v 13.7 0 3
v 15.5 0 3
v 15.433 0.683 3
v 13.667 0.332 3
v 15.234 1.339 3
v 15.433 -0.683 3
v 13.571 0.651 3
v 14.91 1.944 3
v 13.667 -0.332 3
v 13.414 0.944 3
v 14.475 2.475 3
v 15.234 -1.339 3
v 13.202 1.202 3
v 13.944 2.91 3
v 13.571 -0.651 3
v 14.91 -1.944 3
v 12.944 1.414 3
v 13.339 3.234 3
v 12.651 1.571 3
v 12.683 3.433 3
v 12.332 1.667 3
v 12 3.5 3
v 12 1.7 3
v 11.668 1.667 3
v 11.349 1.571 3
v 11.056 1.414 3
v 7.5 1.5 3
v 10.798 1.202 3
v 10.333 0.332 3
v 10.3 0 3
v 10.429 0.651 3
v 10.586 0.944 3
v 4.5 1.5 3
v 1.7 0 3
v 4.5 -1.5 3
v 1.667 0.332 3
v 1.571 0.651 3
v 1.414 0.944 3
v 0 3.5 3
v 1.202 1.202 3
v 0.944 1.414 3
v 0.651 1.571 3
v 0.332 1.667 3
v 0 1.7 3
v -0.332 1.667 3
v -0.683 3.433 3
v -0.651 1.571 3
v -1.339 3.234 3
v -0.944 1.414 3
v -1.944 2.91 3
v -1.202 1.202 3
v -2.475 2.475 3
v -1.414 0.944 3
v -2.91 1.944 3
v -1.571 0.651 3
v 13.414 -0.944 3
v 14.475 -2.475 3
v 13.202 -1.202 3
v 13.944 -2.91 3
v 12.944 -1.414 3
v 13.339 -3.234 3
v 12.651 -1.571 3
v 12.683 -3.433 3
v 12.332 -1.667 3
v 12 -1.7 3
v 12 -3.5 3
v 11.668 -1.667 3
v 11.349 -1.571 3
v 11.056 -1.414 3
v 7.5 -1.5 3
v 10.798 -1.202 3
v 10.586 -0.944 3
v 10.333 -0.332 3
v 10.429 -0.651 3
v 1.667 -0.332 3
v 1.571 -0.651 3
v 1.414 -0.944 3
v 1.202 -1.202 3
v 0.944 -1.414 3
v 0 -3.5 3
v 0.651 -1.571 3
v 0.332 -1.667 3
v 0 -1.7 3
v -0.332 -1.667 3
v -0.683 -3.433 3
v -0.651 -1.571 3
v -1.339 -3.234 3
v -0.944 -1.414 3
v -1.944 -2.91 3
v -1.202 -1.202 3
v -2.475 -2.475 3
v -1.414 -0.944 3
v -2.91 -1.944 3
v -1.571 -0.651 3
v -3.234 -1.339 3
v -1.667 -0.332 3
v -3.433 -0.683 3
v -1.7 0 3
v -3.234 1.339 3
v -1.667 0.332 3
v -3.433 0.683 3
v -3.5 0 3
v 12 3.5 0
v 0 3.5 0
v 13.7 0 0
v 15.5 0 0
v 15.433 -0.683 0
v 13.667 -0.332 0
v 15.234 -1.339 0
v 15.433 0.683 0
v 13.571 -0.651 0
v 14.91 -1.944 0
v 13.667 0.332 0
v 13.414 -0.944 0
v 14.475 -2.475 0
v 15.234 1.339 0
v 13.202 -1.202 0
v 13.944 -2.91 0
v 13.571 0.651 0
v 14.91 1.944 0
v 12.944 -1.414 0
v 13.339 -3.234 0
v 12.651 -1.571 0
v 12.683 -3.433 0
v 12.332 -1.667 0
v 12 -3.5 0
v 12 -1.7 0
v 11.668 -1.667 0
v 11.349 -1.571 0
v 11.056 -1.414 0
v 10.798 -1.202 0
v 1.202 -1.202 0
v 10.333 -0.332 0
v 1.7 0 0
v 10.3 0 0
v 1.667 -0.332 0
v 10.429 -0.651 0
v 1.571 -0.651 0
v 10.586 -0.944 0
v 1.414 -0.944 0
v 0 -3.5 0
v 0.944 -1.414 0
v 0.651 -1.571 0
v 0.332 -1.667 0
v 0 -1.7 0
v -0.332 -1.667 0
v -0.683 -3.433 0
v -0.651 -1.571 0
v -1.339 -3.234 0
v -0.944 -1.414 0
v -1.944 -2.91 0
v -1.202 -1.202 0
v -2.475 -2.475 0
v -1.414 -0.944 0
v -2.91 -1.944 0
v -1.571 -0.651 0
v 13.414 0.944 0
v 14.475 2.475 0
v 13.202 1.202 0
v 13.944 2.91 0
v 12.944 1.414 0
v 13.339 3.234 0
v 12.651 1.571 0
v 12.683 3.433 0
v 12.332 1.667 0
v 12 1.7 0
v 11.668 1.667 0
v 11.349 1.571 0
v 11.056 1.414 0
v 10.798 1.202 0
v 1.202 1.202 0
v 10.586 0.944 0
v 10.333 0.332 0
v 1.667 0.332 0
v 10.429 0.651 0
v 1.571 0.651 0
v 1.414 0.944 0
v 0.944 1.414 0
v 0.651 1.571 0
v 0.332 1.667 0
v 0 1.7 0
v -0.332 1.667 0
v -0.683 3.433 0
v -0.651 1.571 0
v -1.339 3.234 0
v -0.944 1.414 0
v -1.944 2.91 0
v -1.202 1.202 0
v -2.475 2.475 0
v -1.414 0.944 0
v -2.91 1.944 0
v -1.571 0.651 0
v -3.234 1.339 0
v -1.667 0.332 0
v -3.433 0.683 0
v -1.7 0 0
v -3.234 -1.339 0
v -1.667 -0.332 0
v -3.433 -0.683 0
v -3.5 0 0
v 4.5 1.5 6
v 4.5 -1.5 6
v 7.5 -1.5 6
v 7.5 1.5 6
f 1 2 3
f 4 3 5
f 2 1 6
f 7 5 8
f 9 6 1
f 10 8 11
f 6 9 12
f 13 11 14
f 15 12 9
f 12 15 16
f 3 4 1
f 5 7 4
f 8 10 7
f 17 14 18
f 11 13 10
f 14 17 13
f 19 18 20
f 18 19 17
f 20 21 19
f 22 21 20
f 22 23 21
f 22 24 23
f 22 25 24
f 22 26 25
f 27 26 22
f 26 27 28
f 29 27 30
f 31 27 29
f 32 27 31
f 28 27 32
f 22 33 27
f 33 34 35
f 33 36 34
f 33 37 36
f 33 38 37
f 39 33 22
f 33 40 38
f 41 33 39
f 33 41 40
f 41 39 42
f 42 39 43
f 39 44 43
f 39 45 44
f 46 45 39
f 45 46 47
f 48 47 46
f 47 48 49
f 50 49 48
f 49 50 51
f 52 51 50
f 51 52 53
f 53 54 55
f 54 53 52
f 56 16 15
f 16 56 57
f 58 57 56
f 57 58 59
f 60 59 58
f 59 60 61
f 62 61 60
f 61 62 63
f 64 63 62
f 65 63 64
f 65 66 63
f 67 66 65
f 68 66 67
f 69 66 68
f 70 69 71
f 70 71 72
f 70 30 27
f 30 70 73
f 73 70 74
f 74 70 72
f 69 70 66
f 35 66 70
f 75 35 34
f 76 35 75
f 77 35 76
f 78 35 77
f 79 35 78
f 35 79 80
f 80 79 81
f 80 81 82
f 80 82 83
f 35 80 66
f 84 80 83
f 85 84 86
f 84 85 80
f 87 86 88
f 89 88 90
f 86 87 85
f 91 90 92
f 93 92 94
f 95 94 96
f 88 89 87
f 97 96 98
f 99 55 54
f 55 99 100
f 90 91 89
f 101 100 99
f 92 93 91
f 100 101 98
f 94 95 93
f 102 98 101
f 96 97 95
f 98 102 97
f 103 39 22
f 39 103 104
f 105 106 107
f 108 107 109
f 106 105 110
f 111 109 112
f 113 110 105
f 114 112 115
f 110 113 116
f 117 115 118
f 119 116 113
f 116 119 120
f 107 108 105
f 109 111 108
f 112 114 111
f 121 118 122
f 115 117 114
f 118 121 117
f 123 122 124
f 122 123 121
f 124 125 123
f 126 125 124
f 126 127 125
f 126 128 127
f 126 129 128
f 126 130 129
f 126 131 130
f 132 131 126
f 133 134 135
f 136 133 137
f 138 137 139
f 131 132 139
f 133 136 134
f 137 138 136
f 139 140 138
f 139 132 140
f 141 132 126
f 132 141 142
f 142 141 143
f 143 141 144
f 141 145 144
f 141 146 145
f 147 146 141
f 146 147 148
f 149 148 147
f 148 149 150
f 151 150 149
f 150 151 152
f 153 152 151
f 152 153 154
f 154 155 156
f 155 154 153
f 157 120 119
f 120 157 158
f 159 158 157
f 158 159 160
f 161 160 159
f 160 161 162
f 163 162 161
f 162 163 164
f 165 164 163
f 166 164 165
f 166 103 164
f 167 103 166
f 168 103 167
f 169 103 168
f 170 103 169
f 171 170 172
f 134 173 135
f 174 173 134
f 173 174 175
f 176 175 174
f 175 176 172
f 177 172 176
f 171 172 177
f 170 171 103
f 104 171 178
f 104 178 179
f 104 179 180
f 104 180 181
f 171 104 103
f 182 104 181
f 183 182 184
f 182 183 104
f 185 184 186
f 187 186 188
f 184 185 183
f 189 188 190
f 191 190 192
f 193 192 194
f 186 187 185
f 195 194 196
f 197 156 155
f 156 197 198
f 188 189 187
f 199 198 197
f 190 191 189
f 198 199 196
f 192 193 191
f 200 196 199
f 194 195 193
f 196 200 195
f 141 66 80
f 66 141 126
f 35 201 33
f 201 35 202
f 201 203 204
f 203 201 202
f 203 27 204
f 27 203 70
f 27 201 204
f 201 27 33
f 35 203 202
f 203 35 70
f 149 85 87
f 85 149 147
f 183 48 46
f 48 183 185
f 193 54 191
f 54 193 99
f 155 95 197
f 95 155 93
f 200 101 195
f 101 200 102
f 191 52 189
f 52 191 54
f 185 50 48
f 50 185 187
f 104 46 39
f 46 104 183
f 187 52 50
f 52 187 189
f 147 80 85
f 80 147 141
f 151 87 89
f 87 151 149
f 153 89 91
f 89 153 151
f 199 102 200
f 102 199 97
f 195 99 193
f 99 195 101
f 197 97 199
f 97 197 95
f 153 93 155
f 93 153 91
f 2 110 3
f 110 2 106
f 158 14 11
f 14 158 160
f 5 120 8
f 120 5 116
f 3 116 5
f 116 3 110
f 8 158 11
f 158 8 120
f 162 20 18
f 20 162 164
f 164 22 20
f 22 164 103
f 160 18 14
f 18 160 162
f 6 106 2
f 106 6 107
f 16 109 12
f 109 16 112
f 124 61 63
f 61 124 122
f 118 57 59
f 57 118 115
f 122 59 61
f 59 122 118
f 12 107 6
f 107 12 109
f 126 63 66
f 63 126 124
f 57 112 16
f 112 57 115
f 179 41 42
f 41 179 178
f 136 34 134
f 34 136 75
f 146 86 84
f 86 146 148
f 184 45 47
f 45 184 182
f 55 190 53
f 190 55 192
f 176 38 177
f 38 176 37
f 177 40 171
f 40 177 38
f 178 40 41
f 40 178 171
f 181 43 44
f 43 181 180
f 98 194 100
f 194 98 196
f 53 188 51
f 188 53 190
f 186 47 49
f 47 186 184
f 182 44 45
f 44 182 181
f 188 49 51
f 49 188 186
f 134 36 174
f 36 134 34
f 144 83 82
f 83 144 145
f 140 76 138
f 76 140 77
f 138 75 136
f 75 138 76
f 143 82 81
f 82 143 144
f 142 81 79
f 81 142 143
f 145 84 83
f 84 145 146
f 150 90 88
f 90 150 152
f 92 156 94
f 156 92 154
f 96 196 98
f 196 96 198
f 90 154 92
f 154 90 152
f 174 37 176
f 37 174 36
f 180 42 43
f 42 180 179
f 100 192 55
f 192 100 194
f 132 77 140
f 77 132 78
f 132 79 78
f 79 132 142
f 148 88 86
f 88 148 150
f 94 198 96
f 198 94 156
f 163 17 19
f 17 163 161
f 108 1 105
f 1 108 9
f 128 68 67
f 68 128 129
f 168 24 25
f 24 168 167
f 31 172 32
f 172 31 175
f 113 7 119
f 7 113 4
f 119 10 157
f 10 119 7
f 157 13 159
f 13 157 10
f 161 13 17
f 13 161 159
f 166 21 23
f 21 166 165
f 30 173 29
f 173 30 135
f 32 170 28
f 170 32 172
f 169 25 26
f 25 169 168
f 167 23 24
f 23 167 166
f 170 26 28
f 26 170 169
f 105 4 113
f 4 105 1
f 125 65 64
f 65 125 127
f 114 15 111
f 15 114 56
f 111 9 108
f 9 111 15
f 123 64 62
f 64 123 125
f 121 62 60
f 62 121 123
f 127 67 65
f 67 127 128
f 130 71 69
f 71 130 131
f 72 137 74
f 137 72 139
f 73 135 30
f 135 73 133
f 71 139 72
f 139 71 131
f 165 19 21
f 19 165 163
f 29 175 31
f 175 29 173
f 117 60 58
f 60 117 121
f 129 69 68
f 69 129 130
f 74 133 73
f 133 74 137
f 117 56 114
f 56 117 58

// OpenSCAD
//-- arm_very_short_1a.scad by AndrewBCN - May 2015
//-- remix of thing #154834
//-- replaces Brazo.stl with slightly stronger part
//-- and with source file.
//-- GPL V3

arm_th=3;
arm_len=12;
arm_wi=7;
$fn=32;

//-- very, very short arm
//-- !

difference() {
  // arm
  union() {
    translate([arm_len/2,0,arm_th/2]) cube([arm_len,arm_wi,arm_th], center=true);
    translate([arm_len/2,0,1.5*arm_th]) cube([arm_len-9,arm_th,arm_th], center=true);
    translate([0,0,arm_th/2]) cylinder(r=arm_wi/2, h=arm_th, center=true);
    translate([arm_len,0,arm_th/2]) cylinder(r=arm_wi/2, h=arm_th, center=true);
  }
  // holes
  cylinder(r=3.4/2, h=3*arm_th, center=true);
  translate([arm_len,0,0]) cylinder(r=3.4/2, h=3*arm_th, center=true);
}
